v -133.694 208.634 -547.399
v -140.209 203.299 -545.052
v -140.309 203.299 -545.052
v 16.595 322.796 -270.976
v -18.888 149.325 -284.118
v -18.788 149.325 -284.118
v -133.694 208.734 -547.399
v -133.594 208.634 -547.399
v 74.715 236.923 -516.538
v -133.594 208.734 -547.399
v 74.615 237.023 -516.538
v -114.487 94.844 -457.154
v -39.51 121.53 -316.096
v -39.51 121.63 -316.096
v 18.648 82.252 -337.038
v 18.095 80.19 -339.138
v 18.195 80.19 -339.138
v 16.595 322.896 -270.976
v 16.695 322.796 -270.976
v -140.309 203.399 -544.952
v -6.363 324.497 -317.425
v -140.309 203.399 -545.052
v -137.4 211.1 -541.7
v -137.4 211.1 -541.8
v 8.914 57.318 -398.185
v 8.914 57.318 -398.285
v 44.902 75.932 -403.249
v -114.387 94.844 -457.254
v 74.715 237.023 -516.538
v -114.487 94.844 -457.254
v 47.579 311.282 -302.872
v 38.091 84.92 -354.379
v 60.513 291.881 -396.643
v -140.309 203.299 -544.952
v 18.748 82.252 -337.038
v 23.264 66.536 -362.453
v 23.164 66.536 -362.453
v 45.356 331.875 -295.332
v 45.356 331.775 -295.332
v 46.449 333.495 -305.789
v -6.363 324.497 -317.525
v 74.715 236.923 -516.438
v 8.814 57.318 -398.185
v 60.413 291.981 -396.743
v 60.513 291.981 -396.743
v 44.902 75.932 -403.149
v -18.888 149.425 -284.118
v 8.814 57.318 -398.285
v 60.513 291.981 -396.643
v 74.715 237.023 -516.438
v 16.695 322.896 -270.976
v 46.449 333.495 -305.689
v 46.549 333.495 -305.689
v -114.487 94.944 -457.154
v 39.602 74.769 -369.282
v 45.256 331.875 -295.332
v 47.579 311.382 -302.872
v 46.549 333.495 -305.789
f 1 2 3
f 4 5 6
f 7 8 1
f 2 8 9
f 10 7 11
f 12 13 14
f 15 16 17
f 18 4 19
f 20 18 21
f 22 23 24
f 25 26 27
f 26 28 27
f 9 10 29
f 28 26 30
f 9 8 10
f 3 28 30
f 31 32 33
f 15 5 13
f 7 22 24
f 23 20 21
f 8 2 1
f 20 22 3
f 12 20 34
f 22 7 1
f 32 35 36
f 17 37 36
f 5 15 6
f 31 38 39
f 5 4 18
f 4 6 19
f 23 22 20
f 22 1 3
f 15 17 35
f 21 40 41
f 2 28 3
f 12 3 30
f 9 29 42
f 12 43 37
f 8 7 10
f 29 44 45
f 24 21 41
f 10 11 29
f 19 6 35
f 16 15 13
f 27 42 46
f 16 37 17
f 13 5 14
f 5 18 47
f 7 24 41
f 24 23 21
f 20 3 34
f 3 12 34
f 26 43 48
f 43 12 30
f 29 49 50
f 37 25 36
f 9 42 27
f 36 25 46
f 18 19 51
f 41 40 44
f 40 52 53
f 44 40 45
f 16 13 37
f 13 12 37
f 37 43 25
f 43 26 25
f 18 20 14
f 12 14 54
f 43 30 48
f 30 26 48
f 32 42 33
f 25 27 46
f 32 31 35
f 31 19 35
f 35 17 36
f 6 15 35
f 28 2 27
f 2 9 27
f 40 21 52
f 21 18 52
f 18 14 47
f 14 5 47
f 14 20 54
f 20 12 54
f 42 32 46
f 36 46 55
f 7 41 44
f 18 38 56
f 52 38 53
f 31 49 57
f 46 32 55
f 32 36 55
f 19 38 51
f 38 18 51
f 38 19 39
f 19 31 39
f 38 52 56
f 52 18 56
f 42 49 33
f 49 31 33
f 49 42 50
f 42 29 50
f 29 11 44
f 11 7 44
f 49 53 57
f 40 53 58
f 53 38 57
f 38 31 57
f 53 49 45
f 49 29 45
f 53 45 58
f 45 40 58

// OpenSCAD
hull(){ translate([-114.486607143,94.84375,-457.254464286])cube(0.1,0.1,0.1);
translate([8.81386861314,57.3175182482,-398.284671533])cube(0.1,0.1,0.1);
translate([44.802259887,75.9322033898,-403.248587571])cube(0.1,0.1,0.1);
translate([74.6153846154,236.923076923,-516.538461538])cube(0.1,0.1,0.1);
translate([23.1636465533,66.535587521,-362.552774145])cube(0.1,0.1,0.1);
translate([39.5025125628,74.7688442211,-369.381909548])cube(0.1,0.1,0.1);
translate([37.9906542056,84.9198931909,-354.479305741])cube(0.1,0.1,0.1);
translate([-39.5096582467,121.530460624,-316.196136701])cube(0.1,0.1,0.1);
translate([-18.8881309686,149.324693042,-284.217826285])cube(0.1,0.1,0.1);
translate([18.0952380952,80.1904761905,-339.238095238])cube(0.1,0.1,0.1);
translate([18.6479966436,82.2519404237,-337.137612754])cube(0.1,0.1,0.1);
translate([-6.36298421808,324.397417504,-317.525107604])cube(0.1,0.1,0.1);
translate([16.5945805107,322.795726941,-271.076081292])cube(0.1,0.1,0.1);
translate([46.448952296,333.395006687,-305.789121712])cube(0.1,0.1,0.1);
translate([60.4128440367,291.880733945,-396.743119266])cube(0.1,0.1,0.1);
translate([45.2555066079,331.775330396,-295.431718062])cube(0.1,0.1,0.1);
translate([47.4788732394,311.281690141,-302.971830986])cube(0.1,0.1,0.1);
translate([-133.693586698,208.634204276,-547.399049881])cube(0.1,0.1,0.1);
translate([-137.4,211.0,-541.8])cube(0.1,0.1,0.1);
translate([-140.309278351,203.298969072,-545.051546392])cube(0.1,0.1,0.1); }
